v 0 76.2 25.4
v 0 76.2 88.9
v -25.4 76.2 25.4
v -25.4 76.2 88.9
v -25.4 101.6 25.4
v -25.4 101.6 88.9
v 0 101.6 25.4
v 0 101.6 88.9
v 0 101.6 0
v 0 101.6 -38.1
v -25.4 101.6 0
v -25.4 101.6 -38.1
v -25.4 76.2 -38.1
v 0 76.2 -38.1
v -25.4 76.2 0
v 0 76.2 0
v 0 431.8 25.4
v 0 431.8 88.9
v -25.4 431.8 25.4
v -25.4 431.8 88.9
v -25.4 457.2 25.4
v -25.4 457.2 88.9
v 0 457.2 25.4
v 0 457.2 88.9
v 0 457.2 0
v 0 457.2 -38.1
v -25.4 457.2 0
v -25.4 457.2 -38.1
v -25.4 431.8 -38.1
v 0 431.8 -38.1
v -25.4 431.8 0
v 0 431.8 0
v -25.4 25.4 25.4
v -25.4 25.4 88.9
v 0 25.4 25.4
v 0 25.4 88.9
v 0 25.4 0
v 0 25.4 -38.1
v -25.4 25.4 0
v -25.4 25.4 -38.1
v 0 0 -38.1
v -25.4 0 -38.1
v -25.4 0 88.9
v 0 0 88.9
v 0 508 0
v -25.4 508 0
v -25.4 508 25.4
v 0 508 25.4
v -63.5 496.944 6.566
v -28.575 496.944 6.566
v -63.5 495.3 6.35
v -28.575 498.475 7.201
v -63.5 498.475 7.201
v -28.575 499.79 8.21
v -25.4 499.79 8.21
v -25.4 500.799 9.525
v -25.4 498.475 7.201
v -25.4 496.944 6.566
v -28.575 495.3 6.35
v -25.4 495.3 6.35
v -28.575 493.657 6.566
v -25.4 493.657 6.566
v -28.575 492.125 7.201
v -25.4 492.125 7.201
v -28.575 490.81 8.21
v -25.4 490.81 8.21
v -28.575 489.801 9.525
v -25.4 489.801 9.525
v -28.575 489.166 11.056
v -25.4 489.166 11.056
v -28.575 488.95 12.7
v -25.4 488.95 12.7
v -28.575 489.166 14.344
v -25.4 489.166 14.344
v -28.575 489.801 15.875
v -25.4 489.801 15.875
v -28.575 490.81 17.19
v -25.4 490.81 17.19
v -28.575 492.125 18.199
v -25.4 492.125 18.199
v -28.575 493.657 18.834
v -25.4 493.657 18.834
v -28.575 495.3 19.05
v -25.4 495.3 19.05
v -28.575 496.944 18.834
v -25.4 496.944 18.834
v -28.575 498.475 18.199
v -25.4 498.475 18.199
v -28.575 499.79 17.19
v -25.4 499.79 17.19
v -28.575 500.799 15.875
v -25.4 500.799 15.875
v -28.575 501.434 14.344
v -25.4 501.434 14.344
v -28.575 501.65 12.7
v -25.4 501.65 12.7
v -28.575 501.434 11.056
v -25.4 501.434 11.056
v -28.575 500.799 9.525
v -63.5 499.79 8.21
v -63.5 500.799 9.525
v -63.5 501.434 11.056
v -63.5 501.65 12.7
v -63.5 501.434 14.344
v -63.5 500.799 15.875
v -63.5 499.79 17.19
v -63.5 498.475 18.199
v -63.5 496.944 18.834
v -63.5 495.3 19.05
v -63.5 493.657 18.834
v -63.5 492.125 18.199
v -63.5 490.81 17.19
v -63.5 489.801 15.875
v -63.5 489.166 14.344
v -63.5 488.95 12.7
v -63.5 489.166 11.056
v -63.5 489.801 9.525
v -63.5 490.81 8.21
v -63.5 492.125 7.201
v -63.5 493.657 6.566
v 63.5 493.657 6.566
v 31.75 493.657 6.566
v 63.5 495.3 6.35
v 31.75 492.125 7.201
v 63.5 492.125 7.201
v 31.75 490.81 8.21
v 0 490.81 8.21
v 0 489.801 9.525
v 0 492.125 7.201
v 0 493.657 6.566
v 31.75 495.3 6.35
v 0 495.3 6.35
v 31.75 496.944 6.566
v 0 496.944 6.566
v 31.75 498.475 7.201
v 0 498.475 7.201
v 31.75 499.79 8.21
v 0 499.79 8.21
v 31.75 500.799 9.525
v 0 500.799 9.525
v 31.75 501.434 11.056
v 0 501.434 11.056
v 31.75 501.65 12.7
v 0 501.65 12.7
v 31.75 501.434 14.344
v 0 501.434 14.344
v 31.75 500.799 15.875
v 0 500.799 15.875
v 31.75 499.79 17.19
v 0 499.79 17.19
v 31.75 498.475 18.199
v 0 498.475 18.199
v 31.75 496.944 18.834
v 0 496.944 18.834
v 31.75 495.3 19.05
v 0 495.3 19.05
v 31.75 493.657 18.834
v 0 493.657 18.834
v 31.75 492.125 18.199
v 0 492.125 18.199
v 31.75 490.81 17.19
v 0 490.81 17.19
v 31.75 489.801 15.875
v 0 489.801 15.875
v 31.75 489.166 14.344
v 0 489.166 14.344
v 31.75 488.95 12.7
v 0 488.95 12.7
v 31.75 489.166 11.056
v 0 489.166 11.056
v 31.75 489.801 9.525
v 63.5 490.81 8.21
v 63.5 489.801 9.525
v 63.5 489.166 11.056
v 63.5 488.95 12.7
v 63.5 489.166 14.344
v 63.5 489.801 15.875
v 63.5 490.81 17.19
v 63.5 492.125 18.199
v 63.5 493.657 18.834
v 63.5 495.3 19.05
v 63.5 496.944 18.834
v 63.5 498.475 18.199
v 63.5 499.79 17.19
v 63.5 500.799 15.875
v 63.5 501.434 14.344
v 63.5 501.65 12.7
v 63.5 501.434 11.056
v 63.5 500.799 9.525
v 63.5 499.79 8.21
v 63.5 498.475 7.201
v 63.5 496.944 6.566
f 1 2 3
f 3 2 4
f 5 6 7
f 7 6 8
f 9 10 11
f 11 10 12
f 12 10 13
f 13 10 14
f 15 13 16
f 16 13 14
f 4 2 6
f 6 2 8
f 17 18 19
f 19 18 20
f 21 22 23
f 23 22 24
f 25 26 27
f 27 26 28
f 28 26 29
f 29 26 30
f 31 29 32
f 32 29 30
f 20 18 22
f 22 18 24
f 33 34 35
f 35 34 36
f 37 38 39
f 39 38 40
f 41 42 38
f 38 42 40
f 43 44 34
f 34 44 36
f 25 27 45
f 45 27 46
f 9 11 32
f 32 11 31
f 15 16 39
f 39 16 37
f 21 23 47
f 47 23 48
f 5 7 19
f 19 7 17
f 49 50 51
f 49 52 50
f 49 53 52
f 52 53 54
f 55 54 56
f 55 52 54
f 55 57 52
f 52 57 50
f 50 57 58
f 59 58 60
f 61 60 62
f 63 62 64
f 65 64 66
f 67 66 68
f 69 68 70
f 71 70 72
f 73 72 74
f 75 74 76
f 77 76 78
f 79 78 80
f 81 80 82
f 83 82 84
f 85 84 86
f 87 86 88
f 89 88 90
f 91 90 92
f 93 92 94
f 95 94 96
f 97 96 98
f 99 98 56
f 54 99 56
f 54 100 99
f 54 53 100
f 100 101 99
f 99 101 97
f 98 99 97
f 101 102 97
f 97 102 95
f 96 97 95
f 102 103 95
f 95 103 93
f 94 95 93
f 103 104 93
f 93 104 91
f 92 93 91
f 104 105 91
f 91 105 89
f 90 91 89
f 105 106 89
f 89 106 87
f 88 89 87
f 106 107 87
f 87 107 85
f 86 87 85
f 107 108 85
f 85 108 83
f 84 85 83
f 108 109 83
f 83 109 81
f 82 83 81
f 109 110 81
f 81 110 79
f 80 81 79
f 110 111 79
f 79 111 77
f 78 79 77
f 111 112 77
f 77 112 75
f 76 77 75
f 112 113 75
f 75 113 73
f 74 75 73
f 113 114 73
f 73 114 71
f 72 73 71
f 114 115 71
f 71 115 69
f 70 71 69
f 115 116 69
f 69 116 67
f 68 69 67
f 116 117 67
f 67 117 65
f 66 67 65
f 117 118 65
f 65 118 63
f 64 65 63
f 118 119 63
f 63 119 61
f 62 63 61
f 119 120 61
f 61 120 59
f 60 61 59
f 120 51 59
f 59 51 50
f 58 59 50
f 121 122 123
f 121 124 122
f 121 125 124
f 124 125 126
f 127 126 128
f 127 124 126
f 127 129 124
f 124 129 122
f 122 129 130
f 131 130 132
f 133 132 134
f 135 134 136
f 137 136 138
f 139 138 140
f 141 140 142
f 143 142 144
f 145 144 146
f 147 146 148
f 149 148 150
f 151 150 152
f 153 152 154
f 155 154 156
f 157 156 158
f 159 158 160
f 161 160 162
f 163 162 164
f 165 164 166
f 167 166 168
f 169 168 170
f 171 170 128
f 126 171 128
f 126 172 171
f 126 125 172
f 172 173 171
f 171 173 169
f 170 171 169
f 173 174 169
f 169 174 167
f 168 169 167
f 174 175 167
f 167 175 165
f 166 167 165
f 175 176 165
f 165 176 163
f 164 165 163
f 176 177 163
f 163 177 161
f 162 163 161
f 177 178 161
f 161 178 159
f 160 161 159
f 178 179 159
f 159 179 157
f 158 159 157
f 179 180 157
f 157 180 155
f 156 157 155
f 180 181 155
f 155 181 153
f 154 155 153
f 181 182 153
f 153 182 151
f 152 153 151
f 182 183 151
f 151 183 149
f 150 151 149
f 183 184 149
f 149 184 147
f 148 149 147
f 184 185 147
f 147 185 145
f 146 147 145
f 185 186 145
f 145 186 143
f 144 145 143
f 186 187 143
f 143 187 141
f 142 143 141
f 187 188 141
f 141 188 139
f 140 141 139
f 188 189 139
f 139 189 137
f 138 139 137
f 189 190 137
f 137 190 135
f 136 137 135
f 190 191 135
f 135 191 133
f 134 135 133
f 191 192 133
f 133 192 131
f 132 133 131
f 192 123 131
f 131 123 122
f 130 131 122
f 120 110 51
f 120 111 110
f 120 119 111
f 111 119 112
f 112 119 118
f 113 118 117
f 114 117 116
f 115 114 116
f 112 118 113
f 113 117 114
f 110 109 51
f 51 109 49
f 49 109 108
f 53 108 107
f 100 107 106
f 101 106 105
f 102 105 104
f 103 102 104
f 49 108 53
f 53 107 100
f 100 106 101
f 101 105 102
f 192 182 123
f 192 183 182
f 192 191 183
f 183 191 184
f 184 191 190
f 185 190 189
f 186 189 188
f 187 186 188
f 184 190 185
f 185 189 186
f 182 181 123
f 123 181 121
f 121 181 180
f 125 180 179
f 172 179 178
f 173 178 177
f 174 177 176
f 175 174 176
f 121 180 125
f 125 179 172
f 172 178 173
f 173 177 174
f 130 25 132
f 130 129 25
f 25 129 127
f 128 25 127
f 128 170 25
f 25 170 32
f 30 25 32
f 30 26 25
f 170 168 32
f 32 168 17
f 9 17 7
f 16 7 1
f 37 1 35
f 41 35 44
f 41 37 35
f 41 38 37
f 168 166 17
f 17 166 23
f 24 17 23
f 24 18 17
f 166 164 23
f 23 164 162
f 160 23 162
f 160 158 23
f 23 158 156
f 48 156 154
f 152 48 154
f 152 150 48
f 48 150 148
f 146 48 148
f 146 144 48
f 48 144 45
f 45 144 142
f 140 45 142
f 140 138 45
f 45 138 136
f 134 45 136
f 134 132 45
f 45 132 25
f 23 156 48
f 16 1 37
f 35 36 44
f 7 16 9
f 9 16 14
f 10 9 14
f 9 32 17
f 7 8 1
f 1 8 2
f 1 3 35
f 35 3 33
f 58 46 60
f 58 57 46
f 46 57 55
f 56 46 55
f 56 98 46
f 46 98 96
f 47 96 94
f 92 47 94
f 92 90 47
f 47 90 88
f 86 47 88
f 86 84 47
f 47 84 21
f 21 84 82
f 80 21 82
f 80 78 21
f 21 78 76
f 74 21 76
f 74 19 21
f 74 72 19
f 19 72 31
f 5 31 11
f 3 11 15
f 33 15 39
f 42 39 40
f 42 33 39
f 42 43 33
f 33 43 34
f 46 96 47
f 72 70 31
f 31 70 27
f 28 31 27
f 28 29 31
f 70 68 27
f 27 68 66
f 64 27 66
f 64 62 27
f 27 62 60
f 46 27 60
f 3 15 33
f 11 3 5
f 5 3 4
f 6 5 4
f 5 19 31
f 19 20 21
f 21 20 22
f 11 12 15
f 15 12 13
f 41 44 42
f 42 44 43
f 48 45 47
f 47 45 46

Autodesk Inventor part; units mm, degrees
ref_plane "YZ Plane" through (0, 0, 0) normal (1, 0, 0) x (0, 1, 0)
ref_plane "XZ Plane" through (0, 0, 0) normal (0, 1, 0) x (-1, 0, 0)
ref_plane "XY Plane" through (0, 0, 0) normal (0, 0, 1) x (1, 0, 0)
sketch "Sketch2" plane through (0, 0, 0) normal (0, 1, 0) x (-1, 0, 0)
  line L0 (0, 0) -> (25.4, 0)
  line L1 (25.4, 0) -> (25.4, 25.4)
  line L2 (25.4, 25.4) -> (0, 25.4)
  line L3 (0, 25.4) -> (0, 0)
  dimension "d0" = 25.4
  dimension "d1" = 25.4
extrude "Extrusion1" add sketch "Sketch2" along normal blind 508
sketch "Sketch3" plane through (0, 0, 25.4) normal (1, 0, 0) x (0, 0, -1)
  line L0 (25.4, 508) -> (0, 508) projected
  line L1 (25.4, 0) -> (25.4, 508) projected
  circle A0 centre (12.7, 495.3) radius 6.35
  dimension "d4" = 12.7
  dimension "d5" = 12.7
  dimension "d6" = 12.7
extrude "Extrusion2" add sketch "Sketch3" along normal mid plane 127
sketch "Sketch4" plane through (-25.4, 0, 25.4) normal (0, 0, 1) x (1, 0, 0)
  line L0 (25.4, 508) -> (0, 508) projected
  line L1 (0, 0) -> (0, 508) projected
  line L2 (0, 0) -> (25.4, 0) projected
  line L3 (25.4, 0) -> (25.4, 508) projected
  line L4 (0, 457.2) -> (25.4, 457.2)
  line L5 (25.4, 457.2) -> (25.4, 431.8)
  line L6 (25.4, 431.8) -> (0, 431.8)
  line L7 (0, 431.8) -> (0, 457.2)
  line L8 (0, 101.6) -> (25.4, 101.6)
  line L9 (25.4, 101.6) -> (25.4, 76.2)
  line L10 (25.4, 76.2) -> (0, 76.2)
  line L11 (0, 76.2) -> (0, 101.6)
  line L12 (0, 0) -> (25.4, 0)
  line L13 (25.4, 0) -> (25.4, 25.4)
  line L14 (25.4, 25.4) -> (0, 25.4)
  line L15 (0, 25.4) -> (0, 0)
  dimension "d9" = 25.4
  dimension "d10" = 50.8
  dimension "d11" = 25.4
  dimension "d13" = 330.2
  dimension "d14" = 381
  dimension "d17" = 25.4
  dimension "d18" = 101.6
extrude "Extrusion3" add sketch "Sketch4" along normal mid plane 127 contours L3 L6 L1 L4 | L3 L10 L1 L8 | L3 L2 L1 L14
properties part number "InnerTelescopeMockup"
